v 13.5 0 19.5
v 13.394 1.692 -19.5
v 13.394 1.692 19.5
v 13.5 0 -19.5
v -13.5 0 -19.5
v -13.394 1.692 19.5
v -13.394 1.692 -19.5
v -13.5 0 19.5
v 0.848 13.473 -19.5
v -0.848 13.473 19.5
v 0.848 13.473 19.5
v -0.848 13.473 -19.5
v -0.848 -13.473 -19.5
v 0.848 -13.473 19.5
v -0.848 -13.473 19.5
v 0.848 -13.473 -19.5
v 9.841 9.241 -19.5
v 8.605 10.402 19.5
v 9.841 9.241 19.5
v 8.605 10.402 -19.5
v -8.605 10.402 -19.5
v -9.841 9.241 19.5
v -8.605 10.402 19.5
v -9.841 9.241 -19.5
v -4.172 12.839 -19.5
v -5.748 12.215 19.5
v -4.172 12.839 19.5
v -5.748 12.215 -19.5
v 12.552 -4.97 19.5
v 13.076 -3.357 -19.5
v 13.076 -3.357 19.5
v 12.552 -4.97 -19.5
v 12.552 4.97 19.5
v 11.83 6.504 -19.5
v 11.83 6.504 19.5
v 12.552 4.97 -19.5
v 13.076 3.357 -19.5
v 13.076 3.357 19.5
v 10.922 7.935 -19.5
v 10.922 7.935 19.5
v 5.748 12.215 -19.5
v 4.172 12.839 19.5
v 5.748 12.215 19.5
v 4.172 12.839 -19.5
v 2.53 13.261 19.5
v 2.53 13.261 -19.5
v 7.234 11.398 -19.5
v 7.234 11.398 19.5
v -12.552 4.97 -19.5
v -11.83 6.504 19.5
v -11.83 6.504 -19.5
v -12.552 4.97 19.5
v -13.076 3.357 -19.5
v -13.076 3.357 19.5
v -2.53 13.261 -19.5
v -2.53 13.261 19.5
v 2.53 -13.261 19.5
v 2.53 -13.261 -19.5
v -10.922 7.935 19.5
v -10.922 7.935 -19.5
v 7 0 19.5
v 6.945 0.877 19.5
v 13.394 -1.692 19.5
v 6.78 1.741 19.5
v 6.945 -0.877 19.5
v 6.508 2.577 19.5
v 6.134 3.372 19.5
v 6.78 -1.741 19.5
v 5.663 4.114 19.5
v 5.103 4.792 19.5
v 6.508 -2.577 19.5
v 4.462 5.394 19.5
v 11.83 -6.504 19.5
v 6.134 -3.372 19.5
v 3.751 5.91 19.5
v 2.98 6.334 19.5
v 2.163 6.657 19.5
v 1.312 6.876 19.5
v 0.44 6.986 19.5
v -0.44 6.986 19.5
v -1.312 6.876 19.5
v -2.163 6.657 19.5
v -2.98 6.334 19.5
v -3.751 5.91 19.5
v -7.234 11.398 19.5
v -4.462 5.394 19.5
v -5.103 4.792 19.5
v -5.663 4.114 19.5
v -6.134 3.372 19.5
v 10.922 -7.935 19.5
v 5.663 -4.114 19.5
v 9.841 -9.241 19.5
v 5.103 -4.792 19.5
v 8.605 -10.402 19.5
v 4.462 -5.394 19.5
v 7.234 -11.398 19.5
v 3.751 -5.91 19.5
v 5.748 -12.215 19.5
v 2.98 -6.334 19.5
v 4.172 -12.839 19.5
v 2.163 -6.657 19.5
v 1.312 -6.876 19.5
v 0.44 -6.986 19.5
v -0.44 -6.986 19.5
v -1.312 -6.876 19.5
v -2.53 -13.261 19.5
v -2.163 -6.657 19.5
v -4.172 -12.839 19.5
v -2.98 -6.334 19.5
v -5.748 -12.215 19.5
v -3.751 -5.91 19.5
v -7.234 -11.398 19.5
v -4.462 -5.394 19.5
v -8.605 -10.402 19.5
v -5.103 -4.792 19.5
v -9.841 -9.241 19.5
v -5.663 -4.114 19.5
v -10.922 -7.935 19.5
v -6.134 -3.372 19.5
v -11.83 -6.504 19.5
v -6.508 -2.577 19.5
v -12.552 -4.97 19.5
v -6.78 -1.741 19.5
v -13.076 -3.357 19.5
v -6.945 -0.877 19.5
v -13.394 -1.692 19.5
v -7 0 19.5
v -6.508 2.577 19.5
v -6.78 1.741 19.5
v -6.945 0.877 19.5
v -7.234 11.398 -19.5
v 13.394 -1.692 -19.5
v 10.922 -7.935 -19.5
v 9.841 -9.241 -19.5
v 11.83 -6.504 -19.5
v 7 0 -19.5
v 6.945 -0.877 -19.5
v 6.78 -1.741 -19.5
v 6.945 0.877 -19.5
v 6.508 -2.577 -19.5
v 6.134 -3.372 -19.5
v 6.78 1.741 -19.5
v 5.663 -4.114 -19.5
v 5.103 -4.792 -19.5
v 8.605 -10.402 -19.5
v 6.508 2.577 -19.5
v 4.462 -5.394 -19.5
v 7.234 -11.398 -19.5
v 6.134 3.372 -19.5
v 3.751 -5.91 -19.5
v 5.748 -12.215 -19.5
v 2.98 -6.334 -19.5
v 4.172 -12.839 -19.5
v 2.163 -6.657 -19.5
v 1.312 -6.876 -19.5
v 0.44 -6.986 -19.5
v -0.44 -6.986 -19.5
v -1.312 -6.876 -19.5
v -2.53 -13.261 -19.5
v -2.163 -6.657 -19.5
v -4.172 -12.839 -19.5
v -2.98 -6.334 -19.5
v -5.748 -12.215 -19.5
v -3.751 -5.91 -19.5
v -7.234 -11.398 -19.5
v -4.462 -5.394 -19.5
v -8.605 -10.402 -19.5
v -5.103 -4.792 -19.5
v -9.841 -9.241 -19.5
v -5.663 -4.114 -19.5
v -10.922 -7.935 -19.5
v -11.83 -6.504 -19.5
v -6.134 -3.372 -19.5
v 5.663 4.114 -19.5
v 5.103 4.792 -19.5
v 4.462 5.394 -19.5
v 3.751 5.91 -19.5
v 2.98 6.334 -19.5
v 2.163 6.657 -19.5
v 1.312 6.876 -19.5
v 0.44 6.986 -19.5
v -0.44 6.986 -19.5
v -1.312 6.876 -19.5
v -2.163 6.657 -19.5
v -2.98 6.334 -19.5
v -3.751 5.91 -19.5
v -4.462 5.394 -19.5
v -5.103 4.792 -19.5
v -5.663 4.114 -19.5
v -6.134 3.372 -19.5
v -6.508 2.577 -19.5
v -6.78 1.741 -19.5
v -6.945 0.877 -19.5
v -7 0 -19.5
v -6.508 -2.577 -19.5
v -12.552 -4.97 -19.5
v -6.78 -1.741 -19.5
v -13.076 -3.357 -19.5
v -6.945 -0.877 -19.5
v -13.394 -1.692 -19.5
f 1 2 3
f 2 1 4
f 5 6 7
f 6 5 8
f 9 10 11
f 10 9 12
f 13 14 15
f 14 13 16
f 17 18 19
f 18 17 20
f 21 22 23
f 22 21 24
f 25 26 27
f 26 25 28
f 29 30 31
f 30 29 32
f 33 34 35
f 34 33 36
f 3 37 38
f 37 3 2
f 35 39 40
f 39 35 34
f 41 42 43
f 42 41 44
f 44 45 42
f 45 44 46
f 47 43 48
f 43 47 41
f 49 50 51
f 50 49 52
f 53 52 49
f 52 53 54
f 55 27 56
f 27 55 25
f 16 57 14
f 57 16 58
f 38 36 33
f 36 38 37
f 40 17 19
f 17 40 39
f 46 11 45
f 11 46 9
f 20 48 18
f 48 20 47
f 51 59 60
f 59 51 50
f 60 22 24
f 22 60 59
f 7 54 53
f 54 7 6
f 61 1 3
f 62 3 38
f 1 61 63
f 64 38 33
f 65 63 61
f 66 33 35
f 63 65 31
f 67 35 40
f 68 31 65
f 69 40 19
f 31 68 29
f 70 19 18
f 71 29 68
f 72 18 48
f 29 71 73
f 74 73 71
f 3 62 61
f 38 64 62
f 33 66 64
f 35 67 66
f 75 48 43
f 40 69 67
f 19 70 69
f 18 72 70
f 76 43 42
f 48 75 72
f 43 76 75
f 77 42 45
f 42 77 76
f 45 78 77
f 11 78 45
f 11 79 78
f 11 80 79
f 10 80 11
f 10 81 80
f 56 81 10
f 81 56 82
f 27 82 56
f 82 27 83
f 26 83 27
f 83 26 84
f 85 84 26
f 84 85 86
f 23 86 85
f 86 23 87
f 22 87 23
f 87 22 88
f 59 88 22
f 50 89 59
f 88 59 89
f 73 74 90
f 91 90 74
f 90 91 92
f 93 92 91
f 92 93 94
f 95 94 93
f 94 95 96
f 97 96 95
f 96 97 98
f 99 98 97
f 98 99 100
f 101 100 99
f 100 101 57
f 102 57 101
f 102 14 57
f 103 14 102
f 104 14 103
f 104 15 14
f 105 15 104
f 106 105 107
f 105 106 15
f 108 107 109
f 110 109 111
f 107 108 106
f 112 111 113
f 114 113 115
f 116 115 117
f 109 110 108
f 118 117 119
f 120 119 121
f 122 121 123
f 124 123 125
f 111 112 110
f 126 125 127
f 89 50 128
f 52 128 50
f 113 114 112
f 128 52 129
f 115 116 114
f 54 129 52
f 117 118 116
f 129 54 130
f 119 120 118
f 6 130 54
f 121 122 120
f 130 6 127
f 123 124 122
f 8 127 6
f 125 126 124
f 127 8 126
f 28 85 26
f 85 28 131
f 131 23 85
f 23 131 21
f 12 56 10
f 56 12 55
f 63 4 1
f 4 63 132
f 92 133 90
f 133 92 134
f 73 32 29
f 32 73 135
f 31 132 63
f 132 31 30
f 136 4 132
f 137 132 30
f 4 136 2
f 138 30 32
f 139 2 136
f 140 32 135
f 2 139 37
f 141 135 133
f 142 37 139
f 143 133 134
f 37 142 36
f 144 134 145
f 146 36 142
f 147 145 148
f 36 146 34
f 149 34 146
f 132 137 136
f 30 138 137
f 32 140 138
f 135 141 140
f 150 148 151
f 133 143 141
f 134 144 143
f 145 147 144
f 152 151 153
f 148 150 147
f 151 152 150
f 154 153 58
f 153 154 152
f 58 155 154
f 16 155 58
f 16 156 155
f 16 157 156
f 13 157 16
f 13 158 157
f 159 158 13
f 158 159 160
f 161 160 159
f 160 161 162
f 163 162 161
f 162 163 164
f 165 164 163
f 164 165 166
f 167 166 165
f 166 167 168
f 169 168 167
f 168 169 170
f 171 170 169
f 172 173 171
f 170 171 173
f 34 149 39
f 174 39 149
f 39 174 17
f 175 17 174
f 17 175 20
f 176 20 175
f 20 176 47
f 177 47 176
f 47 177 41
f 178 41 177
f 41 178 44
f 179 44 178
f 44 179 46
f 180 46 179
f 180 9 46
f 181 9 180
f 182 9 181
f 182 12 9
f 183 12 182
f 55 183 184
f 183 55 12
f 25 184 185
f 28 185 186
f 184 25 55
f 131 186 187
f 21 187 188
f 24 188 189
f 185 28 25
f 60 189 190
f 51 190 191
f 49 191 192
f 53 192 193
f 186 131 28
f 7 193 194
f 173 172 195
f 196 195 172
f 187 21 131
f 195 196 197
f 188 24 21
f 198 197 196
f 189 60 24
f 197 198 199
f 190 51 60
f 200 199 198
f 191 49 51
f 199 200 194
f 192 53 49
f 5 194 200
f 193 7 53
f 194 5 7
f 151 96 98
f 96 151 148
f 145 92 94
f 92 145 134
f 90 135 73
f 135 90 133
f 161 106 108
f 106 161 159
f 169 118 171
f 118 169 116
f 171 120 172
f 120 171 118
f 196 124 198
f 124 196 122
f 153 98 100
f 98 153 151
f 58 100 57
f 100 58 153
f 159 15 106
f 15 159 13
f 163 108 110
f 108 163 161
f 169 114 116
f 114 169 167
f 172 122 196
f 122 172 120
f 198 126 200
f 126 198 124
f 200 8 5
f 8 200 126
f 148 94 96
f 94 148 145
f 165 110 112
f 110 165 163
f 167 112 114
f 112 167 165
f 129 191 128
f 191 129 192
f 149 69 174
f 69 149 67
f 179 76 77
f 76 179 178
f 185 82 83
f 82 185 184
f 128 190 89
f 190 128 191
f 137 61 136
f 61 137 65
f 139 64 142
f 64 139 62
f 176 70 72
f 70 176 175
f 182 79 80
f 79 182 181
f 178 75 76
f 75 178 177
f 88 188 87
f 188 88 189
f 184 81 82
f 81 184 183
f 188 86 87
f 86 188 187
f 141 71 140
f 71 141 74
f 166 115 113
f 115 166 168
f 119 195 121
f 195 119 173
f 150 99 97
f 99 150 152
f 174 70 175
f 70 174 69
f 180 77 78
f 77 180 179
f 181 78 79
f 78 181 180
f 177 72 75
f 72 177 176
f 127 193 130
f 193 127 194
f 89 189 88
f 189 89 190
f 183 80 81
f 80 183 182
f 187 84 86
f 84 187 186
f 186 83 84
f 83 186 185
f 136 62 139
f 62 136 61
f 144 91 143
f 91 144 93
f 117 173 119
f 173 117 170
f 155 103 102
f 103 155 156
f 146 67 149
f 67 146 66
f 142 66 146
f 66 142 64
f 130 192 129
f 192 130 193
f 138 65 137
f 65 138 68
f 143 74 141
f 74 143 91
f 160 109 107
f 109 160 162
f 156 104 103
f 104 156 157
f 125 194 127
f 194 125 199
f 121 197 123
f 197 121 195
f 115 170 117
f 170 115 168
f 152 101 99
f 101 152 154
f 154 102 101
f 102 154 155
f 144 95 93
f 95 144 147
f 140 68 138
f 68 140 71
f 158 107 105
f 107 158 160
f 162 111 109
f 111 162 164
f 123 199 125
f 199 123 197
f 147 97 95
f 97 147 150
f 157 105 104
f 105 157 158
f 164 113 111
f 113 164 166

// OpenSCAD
$fn = 50;


difference() {
	union() {
		translate(v = [0, 0, -19.5000000000]) {
			cylinder(h = 39, r = 13.5000000000);
		}
	}
	union() {
		translate(v = [0, 0, -100.0000000000]) {
			cylinder(h = 200, r = 7);
		}
	}
}
